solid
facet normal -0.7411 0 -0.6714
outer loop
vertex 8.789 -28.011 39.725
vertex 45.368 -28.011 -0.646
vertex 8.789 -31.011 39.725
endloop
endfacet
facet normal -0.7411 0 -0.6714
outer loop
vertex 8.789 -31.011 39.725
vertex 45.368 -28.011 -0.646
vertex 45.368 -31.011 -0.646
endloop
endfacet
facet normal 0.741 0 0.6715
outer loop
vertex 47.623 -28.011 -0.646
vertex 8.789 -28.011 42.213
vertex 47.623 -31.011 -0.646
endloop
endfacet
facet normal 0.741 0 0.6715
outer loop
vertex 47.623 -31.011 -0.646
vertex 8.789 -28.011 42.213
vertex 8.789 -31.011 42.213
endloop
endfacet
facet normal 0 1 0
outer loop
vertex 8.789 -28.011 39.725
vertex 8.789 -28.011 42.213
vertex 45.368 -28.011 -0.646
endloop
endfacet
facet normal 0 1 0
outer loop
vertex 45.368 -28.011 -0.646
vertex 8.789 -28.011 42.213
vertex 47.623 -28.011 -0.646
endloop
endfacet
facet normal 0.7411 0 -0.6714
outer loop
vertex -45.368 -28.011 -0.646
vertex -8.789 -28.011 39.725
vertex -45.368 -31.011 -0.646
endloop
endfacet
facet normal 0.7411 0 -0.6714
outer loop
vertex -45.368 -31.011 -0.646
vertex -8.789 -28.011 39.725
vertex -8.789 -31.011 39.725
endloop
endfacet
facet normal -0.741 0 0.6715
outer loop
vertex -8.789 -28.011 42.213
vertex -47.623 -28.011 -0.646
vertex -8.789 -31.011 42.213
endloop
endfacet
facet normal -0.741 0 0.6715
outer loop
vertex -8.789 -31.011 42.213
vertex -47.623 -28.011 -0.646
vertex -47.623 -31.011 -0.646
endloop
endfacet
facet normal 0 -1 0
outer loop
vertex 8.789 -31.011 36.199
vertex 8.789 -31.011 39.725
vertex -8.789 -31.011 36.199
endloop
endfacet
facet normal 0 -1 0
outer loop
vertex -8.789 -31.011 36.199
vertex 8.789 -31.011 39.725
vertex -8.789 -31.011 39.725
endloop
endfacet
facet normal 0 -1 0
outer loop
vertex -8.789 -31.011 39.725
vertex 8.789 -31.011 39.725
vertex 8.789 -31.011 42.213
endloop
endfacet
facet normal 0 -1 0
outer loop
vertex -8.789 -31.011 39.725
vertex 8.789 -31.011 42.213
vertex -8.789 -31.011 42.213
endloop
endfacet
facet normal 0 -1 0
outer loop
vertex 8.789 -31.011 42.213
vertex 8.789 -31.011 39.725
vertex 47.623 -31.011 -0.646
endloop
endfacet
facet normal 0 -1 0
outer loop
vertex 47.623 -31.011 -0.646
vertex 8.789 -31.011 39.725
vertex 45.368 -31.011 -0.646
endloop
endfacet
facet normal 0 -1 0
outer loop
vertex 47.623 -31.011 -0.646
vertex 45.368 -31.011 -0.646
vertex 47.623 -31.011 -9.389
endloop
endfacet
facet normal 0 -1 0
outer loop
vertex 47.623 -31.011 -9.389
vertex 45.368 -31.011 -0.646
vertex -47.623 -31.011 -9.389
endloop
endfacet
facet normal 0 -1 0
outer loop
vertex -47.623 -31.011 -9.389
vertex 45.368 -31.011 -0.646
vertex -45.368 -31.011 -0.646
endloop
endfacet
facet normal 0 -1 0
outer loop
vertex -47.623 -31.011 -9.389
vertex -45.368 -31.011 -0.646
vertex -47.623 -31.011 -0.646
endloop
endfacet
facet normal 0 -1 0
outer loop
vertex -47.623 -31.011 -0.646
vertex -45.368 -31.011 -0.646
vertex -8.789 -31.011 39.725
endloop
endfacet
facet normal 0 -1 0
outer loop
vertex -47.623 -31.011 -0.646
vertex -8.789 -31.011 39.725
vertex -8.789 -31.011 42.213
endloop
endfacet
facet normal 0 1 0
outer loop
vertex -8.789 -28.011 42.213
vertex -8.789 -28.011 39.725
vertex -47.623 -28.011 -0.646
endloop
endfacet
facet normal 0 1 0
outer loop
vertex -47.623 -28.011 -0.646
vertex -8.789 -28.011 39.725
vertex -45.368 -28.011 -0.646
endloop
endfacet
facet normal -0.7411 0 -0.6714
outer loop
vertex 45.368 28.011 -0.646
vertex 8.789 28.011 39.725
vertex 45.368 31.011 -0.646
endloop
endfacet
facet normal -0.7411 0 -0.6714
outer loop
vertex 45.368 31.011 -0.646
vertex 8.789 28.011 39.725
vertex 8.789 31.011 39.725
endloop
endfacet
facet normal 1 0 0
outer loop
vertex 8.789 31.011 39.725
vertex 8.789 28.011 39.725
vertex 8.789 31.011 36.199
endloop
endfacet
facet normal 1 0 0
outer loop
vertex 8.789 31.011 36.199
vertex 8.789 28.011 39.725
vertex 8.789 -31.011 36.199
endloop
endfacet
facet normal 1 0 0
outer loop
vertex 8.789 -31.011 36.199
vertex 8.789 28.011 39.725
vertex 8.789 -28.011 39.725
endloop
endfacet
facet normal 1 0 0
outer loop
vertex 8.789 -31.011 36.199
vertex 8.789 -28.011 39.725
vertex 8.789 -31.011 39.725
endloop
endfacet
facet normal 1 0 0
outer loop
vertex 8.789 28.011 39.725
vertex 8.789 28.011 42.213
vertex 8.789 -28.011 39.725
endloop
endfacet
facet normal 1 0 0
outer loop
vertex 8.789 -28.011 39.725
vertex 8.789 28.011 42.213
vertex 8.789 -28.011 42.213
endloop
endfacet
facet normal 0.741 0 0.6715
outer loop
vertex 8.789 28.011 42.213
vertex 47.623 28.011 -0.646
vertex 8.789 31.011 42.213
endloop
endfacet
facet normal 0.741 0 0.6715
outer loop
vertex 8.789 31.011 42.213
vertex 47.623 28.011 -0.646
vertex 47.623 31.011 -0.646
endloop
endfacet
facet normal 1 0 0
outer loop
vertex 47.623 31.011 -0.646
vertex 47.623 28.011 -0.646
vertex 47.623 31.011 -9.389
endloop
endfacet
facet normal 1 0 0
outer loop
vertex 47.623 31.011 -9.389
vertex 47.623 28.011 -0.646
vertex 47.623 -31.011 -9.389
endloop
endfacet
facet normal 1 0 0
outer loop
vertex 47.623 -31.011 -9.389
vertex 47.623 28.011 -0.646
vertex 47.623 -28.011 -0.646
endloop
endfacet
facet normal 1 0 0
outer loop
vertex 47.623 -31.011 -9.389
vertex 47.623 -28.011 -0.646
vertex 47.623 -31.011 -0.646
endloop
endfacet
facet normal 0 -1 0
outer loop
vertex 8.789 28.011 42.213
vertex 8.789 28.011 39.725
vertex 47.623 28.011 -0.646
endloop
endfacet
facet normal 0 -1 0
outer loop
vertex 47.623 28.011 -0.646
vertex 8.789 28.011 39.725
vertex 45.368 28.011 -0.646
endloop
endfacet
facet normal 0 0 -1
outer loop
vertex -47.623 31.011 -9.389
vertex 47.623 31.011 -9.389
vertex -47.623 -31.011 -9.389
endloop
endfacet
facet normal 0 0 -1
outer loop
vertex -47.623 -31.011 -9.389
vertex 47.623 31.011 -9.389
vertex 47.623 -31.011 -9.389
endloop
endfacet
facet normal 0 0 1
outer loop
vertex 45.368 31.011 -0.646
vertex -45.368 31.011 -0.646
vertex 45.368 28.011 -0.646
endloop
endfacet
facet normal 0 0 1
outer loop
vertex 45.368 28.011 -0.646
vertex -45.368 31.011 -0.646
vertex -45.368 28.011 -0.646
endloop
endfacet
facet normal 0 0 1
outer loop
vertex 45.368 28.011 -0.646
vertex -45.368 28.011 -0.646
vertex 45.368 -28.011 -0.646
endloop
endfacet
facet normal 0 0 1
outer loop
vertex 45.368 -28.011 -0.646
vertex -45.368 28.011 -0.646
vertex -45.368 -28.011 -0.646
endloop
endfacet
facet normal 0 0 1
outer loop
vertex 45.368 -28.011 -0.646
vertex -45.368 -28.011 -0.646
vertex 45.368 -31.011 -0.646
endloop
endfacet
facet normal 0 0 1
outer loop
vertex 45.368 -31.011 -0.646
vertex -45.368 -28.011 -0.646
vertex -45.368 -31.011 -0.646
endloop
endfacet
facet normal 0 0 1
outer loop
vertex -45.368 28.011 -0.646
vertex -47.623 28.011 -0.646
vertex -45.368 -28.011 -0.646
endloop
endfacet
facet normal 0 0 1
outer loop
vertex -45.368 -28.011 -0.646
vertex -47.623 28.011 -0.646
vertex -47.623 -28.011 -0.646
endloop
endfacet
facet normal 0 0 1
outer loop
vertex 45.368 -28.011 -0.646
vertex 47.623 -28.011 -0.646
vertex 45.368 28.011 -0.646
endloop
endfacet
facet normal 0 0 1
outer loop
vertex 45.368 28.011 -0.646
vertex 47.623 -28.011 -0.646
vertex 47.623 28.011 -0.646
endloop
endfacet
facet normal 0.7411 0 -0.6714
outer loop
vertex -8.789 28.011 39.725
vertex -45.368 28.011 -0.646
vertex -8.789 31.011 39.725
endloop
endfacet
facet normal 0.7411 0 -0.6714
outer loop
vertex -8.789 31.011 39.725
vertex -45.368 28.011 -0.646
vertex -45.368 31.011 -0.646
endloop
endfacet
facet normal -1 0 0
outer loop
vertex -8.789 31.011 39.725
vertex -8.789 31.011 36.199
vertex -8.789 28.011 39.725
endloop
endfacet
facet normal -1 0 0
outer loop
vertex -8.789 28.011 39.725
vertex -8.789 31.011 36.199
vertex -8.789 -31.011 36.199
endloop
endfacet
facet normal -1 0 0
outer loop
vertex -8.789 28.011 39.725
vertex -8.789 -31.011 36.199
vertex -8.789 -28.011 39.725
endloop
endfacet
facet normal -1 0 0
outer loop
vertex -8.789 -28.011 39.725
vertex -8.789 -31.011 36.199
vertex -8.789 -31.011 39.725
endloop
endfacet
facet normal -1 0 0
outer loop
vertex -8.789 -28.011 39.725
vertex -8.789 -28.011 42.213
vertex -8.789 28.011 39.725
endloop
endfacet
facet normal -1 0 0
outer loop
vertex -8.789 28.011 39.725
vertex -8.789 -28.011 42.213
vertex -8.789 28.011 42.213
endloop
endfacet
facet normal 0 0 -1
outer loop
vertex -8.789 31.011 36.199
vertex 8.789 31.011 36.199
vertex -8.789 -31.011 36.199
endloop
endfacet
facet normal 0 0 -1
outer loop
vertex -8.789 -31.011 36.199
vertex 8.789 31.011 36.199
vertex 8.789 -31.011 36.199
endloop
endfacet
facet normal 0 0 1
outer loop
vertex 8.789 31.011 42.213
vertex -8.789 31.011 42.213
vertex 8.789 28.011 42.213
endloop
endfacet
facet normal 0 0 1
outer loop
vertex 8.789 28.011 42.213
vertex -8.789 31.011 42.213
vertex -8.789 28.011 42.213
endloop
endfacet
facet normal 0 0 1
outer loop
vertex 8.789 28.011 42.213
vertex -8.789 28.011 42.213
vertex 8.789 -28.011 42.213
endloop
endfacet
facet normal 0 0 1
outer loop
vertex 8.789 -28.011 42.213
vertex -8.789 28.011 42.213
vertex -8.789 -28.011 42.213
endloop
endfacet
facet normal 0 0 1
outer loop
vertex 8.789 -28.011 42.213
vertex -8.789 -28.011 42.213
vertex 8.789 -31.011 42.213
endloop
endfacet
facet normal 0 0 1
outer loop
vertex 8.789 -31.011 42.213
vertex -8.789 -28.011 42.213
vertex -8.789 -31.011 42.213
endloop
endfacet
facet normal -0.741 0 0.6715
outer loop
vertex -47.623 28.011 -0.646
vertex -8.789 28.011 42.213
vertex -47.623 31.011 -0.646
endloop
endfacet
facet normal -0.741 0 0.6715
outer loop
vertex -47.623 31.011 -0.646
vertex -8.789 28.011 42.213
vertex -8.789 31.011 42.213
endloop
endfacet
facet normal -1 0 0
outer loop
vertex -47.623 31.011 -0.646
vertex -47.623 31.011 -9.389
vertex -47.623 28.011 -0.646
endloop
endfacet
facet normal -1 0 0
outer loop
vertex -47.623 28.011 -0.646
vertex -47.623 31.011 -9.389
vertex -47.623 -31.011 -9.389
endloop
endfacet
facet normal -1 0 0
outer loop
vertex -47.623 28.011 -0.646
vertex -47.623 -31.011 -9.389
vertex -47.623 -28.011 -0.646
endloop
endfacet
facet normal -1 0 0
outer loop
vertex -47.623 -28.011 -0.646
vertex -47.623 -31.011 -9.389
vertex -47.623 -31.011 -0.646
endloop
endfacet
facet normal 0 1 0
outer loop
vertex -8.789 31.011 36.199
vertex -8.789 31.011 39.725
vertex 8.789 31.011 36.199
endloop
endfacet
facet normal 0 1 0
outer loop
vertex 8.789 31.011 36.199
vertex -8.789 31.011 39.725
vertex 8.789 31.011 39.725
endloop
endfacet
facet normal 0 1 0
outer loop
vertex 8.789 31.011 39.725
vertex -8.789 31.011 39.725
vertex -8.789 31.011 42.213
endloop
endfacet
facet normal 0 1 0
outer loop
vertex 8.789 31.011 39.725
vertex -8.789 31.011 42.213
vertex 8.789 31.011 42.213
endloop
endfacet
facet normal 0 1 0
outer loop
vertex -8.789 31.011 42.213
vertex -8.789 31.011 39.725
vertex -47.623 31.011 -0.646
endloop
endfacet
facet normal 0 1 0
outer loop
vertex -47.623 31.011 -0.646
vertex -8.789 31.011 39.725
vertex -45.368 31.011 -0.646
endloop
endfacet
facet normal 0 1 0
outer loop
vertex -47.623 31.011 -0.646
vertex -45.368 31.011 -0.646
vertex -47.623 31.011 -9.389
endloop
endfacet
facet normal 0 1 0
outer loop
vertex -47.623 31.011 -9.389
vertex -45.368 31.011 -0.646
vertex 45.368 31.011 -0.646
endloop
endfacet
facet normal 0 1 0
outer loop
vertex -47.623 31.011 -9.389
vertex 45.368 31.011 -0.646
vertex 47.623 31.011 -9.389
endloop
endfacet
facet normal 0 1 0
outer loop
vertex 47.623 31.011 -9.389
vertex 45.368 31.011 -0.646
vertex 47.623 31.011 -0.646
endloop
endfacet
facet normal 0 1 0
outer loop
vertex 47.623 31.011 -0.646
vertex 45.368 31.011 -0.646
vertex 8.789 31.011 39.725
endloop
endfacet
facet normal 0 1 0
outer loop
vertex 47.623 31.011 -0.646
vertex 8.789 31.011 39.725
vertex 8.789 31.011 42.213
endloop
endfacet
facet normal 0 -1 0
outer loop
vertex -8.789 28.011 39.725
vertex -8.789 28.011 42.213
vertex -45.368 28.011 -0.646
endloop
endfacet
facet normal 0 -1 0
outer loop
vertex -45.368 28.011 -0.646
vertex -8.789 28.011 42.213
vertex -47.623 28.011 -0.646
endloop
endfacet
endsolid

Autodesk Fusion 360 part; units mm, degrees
ref_plane "WorkPlane1" through (0, 28.011, 0) normal (0, 1, 0) x (0, 0, 1)
sketch "Sketch2" plane through (0, 28.011, 0) normal (0, 1, 0) x (1, 0, 0)
  line L0 (-47.6227, 0.6459) -> (-8.7892, -42.213)
  line L1 (-8.7892, -39.7251) -> (-48.648, 4.2654)
  line L2 (-8.7892, -42.213) -> (0, -42.213)
  line L3 (0, -42.213) -> (0, -36.199)
  line L4 (0, -36.199) -> (-8.7892, -36.199)
  line L5 (-8.7892, -36.199) -> (-8.7892, -42.213)
  line L6 (-47.6227, 0.6459) -> (0, 0.6459)
  line L7 (0, 0.6459) -> (0, 9.3893)
  line L8 (0, 9.3893) -> (-47.6227, 9.3893)
  line L9 (-47.6227, 9.3893) -> (-47.6227, 0.6459)
extrude "Extrude1" add sketch "Sketch2" along normal blind 3
extrude "Extrude2" add sketch "Sketch2" against normal up to surface (28.011 mm away) contours L1 L6 L9 | L2 L3 L4 L5 | L1 L6 L7 L8 L9
mirror "Mirror1" about plane through (0, 0, 0) normal (1, 0, 0) of bodies 1 merged
mirror "Mirror2" about plane through (0, 0, 0) normal (0, -1, 0) of bodies 1 merged
